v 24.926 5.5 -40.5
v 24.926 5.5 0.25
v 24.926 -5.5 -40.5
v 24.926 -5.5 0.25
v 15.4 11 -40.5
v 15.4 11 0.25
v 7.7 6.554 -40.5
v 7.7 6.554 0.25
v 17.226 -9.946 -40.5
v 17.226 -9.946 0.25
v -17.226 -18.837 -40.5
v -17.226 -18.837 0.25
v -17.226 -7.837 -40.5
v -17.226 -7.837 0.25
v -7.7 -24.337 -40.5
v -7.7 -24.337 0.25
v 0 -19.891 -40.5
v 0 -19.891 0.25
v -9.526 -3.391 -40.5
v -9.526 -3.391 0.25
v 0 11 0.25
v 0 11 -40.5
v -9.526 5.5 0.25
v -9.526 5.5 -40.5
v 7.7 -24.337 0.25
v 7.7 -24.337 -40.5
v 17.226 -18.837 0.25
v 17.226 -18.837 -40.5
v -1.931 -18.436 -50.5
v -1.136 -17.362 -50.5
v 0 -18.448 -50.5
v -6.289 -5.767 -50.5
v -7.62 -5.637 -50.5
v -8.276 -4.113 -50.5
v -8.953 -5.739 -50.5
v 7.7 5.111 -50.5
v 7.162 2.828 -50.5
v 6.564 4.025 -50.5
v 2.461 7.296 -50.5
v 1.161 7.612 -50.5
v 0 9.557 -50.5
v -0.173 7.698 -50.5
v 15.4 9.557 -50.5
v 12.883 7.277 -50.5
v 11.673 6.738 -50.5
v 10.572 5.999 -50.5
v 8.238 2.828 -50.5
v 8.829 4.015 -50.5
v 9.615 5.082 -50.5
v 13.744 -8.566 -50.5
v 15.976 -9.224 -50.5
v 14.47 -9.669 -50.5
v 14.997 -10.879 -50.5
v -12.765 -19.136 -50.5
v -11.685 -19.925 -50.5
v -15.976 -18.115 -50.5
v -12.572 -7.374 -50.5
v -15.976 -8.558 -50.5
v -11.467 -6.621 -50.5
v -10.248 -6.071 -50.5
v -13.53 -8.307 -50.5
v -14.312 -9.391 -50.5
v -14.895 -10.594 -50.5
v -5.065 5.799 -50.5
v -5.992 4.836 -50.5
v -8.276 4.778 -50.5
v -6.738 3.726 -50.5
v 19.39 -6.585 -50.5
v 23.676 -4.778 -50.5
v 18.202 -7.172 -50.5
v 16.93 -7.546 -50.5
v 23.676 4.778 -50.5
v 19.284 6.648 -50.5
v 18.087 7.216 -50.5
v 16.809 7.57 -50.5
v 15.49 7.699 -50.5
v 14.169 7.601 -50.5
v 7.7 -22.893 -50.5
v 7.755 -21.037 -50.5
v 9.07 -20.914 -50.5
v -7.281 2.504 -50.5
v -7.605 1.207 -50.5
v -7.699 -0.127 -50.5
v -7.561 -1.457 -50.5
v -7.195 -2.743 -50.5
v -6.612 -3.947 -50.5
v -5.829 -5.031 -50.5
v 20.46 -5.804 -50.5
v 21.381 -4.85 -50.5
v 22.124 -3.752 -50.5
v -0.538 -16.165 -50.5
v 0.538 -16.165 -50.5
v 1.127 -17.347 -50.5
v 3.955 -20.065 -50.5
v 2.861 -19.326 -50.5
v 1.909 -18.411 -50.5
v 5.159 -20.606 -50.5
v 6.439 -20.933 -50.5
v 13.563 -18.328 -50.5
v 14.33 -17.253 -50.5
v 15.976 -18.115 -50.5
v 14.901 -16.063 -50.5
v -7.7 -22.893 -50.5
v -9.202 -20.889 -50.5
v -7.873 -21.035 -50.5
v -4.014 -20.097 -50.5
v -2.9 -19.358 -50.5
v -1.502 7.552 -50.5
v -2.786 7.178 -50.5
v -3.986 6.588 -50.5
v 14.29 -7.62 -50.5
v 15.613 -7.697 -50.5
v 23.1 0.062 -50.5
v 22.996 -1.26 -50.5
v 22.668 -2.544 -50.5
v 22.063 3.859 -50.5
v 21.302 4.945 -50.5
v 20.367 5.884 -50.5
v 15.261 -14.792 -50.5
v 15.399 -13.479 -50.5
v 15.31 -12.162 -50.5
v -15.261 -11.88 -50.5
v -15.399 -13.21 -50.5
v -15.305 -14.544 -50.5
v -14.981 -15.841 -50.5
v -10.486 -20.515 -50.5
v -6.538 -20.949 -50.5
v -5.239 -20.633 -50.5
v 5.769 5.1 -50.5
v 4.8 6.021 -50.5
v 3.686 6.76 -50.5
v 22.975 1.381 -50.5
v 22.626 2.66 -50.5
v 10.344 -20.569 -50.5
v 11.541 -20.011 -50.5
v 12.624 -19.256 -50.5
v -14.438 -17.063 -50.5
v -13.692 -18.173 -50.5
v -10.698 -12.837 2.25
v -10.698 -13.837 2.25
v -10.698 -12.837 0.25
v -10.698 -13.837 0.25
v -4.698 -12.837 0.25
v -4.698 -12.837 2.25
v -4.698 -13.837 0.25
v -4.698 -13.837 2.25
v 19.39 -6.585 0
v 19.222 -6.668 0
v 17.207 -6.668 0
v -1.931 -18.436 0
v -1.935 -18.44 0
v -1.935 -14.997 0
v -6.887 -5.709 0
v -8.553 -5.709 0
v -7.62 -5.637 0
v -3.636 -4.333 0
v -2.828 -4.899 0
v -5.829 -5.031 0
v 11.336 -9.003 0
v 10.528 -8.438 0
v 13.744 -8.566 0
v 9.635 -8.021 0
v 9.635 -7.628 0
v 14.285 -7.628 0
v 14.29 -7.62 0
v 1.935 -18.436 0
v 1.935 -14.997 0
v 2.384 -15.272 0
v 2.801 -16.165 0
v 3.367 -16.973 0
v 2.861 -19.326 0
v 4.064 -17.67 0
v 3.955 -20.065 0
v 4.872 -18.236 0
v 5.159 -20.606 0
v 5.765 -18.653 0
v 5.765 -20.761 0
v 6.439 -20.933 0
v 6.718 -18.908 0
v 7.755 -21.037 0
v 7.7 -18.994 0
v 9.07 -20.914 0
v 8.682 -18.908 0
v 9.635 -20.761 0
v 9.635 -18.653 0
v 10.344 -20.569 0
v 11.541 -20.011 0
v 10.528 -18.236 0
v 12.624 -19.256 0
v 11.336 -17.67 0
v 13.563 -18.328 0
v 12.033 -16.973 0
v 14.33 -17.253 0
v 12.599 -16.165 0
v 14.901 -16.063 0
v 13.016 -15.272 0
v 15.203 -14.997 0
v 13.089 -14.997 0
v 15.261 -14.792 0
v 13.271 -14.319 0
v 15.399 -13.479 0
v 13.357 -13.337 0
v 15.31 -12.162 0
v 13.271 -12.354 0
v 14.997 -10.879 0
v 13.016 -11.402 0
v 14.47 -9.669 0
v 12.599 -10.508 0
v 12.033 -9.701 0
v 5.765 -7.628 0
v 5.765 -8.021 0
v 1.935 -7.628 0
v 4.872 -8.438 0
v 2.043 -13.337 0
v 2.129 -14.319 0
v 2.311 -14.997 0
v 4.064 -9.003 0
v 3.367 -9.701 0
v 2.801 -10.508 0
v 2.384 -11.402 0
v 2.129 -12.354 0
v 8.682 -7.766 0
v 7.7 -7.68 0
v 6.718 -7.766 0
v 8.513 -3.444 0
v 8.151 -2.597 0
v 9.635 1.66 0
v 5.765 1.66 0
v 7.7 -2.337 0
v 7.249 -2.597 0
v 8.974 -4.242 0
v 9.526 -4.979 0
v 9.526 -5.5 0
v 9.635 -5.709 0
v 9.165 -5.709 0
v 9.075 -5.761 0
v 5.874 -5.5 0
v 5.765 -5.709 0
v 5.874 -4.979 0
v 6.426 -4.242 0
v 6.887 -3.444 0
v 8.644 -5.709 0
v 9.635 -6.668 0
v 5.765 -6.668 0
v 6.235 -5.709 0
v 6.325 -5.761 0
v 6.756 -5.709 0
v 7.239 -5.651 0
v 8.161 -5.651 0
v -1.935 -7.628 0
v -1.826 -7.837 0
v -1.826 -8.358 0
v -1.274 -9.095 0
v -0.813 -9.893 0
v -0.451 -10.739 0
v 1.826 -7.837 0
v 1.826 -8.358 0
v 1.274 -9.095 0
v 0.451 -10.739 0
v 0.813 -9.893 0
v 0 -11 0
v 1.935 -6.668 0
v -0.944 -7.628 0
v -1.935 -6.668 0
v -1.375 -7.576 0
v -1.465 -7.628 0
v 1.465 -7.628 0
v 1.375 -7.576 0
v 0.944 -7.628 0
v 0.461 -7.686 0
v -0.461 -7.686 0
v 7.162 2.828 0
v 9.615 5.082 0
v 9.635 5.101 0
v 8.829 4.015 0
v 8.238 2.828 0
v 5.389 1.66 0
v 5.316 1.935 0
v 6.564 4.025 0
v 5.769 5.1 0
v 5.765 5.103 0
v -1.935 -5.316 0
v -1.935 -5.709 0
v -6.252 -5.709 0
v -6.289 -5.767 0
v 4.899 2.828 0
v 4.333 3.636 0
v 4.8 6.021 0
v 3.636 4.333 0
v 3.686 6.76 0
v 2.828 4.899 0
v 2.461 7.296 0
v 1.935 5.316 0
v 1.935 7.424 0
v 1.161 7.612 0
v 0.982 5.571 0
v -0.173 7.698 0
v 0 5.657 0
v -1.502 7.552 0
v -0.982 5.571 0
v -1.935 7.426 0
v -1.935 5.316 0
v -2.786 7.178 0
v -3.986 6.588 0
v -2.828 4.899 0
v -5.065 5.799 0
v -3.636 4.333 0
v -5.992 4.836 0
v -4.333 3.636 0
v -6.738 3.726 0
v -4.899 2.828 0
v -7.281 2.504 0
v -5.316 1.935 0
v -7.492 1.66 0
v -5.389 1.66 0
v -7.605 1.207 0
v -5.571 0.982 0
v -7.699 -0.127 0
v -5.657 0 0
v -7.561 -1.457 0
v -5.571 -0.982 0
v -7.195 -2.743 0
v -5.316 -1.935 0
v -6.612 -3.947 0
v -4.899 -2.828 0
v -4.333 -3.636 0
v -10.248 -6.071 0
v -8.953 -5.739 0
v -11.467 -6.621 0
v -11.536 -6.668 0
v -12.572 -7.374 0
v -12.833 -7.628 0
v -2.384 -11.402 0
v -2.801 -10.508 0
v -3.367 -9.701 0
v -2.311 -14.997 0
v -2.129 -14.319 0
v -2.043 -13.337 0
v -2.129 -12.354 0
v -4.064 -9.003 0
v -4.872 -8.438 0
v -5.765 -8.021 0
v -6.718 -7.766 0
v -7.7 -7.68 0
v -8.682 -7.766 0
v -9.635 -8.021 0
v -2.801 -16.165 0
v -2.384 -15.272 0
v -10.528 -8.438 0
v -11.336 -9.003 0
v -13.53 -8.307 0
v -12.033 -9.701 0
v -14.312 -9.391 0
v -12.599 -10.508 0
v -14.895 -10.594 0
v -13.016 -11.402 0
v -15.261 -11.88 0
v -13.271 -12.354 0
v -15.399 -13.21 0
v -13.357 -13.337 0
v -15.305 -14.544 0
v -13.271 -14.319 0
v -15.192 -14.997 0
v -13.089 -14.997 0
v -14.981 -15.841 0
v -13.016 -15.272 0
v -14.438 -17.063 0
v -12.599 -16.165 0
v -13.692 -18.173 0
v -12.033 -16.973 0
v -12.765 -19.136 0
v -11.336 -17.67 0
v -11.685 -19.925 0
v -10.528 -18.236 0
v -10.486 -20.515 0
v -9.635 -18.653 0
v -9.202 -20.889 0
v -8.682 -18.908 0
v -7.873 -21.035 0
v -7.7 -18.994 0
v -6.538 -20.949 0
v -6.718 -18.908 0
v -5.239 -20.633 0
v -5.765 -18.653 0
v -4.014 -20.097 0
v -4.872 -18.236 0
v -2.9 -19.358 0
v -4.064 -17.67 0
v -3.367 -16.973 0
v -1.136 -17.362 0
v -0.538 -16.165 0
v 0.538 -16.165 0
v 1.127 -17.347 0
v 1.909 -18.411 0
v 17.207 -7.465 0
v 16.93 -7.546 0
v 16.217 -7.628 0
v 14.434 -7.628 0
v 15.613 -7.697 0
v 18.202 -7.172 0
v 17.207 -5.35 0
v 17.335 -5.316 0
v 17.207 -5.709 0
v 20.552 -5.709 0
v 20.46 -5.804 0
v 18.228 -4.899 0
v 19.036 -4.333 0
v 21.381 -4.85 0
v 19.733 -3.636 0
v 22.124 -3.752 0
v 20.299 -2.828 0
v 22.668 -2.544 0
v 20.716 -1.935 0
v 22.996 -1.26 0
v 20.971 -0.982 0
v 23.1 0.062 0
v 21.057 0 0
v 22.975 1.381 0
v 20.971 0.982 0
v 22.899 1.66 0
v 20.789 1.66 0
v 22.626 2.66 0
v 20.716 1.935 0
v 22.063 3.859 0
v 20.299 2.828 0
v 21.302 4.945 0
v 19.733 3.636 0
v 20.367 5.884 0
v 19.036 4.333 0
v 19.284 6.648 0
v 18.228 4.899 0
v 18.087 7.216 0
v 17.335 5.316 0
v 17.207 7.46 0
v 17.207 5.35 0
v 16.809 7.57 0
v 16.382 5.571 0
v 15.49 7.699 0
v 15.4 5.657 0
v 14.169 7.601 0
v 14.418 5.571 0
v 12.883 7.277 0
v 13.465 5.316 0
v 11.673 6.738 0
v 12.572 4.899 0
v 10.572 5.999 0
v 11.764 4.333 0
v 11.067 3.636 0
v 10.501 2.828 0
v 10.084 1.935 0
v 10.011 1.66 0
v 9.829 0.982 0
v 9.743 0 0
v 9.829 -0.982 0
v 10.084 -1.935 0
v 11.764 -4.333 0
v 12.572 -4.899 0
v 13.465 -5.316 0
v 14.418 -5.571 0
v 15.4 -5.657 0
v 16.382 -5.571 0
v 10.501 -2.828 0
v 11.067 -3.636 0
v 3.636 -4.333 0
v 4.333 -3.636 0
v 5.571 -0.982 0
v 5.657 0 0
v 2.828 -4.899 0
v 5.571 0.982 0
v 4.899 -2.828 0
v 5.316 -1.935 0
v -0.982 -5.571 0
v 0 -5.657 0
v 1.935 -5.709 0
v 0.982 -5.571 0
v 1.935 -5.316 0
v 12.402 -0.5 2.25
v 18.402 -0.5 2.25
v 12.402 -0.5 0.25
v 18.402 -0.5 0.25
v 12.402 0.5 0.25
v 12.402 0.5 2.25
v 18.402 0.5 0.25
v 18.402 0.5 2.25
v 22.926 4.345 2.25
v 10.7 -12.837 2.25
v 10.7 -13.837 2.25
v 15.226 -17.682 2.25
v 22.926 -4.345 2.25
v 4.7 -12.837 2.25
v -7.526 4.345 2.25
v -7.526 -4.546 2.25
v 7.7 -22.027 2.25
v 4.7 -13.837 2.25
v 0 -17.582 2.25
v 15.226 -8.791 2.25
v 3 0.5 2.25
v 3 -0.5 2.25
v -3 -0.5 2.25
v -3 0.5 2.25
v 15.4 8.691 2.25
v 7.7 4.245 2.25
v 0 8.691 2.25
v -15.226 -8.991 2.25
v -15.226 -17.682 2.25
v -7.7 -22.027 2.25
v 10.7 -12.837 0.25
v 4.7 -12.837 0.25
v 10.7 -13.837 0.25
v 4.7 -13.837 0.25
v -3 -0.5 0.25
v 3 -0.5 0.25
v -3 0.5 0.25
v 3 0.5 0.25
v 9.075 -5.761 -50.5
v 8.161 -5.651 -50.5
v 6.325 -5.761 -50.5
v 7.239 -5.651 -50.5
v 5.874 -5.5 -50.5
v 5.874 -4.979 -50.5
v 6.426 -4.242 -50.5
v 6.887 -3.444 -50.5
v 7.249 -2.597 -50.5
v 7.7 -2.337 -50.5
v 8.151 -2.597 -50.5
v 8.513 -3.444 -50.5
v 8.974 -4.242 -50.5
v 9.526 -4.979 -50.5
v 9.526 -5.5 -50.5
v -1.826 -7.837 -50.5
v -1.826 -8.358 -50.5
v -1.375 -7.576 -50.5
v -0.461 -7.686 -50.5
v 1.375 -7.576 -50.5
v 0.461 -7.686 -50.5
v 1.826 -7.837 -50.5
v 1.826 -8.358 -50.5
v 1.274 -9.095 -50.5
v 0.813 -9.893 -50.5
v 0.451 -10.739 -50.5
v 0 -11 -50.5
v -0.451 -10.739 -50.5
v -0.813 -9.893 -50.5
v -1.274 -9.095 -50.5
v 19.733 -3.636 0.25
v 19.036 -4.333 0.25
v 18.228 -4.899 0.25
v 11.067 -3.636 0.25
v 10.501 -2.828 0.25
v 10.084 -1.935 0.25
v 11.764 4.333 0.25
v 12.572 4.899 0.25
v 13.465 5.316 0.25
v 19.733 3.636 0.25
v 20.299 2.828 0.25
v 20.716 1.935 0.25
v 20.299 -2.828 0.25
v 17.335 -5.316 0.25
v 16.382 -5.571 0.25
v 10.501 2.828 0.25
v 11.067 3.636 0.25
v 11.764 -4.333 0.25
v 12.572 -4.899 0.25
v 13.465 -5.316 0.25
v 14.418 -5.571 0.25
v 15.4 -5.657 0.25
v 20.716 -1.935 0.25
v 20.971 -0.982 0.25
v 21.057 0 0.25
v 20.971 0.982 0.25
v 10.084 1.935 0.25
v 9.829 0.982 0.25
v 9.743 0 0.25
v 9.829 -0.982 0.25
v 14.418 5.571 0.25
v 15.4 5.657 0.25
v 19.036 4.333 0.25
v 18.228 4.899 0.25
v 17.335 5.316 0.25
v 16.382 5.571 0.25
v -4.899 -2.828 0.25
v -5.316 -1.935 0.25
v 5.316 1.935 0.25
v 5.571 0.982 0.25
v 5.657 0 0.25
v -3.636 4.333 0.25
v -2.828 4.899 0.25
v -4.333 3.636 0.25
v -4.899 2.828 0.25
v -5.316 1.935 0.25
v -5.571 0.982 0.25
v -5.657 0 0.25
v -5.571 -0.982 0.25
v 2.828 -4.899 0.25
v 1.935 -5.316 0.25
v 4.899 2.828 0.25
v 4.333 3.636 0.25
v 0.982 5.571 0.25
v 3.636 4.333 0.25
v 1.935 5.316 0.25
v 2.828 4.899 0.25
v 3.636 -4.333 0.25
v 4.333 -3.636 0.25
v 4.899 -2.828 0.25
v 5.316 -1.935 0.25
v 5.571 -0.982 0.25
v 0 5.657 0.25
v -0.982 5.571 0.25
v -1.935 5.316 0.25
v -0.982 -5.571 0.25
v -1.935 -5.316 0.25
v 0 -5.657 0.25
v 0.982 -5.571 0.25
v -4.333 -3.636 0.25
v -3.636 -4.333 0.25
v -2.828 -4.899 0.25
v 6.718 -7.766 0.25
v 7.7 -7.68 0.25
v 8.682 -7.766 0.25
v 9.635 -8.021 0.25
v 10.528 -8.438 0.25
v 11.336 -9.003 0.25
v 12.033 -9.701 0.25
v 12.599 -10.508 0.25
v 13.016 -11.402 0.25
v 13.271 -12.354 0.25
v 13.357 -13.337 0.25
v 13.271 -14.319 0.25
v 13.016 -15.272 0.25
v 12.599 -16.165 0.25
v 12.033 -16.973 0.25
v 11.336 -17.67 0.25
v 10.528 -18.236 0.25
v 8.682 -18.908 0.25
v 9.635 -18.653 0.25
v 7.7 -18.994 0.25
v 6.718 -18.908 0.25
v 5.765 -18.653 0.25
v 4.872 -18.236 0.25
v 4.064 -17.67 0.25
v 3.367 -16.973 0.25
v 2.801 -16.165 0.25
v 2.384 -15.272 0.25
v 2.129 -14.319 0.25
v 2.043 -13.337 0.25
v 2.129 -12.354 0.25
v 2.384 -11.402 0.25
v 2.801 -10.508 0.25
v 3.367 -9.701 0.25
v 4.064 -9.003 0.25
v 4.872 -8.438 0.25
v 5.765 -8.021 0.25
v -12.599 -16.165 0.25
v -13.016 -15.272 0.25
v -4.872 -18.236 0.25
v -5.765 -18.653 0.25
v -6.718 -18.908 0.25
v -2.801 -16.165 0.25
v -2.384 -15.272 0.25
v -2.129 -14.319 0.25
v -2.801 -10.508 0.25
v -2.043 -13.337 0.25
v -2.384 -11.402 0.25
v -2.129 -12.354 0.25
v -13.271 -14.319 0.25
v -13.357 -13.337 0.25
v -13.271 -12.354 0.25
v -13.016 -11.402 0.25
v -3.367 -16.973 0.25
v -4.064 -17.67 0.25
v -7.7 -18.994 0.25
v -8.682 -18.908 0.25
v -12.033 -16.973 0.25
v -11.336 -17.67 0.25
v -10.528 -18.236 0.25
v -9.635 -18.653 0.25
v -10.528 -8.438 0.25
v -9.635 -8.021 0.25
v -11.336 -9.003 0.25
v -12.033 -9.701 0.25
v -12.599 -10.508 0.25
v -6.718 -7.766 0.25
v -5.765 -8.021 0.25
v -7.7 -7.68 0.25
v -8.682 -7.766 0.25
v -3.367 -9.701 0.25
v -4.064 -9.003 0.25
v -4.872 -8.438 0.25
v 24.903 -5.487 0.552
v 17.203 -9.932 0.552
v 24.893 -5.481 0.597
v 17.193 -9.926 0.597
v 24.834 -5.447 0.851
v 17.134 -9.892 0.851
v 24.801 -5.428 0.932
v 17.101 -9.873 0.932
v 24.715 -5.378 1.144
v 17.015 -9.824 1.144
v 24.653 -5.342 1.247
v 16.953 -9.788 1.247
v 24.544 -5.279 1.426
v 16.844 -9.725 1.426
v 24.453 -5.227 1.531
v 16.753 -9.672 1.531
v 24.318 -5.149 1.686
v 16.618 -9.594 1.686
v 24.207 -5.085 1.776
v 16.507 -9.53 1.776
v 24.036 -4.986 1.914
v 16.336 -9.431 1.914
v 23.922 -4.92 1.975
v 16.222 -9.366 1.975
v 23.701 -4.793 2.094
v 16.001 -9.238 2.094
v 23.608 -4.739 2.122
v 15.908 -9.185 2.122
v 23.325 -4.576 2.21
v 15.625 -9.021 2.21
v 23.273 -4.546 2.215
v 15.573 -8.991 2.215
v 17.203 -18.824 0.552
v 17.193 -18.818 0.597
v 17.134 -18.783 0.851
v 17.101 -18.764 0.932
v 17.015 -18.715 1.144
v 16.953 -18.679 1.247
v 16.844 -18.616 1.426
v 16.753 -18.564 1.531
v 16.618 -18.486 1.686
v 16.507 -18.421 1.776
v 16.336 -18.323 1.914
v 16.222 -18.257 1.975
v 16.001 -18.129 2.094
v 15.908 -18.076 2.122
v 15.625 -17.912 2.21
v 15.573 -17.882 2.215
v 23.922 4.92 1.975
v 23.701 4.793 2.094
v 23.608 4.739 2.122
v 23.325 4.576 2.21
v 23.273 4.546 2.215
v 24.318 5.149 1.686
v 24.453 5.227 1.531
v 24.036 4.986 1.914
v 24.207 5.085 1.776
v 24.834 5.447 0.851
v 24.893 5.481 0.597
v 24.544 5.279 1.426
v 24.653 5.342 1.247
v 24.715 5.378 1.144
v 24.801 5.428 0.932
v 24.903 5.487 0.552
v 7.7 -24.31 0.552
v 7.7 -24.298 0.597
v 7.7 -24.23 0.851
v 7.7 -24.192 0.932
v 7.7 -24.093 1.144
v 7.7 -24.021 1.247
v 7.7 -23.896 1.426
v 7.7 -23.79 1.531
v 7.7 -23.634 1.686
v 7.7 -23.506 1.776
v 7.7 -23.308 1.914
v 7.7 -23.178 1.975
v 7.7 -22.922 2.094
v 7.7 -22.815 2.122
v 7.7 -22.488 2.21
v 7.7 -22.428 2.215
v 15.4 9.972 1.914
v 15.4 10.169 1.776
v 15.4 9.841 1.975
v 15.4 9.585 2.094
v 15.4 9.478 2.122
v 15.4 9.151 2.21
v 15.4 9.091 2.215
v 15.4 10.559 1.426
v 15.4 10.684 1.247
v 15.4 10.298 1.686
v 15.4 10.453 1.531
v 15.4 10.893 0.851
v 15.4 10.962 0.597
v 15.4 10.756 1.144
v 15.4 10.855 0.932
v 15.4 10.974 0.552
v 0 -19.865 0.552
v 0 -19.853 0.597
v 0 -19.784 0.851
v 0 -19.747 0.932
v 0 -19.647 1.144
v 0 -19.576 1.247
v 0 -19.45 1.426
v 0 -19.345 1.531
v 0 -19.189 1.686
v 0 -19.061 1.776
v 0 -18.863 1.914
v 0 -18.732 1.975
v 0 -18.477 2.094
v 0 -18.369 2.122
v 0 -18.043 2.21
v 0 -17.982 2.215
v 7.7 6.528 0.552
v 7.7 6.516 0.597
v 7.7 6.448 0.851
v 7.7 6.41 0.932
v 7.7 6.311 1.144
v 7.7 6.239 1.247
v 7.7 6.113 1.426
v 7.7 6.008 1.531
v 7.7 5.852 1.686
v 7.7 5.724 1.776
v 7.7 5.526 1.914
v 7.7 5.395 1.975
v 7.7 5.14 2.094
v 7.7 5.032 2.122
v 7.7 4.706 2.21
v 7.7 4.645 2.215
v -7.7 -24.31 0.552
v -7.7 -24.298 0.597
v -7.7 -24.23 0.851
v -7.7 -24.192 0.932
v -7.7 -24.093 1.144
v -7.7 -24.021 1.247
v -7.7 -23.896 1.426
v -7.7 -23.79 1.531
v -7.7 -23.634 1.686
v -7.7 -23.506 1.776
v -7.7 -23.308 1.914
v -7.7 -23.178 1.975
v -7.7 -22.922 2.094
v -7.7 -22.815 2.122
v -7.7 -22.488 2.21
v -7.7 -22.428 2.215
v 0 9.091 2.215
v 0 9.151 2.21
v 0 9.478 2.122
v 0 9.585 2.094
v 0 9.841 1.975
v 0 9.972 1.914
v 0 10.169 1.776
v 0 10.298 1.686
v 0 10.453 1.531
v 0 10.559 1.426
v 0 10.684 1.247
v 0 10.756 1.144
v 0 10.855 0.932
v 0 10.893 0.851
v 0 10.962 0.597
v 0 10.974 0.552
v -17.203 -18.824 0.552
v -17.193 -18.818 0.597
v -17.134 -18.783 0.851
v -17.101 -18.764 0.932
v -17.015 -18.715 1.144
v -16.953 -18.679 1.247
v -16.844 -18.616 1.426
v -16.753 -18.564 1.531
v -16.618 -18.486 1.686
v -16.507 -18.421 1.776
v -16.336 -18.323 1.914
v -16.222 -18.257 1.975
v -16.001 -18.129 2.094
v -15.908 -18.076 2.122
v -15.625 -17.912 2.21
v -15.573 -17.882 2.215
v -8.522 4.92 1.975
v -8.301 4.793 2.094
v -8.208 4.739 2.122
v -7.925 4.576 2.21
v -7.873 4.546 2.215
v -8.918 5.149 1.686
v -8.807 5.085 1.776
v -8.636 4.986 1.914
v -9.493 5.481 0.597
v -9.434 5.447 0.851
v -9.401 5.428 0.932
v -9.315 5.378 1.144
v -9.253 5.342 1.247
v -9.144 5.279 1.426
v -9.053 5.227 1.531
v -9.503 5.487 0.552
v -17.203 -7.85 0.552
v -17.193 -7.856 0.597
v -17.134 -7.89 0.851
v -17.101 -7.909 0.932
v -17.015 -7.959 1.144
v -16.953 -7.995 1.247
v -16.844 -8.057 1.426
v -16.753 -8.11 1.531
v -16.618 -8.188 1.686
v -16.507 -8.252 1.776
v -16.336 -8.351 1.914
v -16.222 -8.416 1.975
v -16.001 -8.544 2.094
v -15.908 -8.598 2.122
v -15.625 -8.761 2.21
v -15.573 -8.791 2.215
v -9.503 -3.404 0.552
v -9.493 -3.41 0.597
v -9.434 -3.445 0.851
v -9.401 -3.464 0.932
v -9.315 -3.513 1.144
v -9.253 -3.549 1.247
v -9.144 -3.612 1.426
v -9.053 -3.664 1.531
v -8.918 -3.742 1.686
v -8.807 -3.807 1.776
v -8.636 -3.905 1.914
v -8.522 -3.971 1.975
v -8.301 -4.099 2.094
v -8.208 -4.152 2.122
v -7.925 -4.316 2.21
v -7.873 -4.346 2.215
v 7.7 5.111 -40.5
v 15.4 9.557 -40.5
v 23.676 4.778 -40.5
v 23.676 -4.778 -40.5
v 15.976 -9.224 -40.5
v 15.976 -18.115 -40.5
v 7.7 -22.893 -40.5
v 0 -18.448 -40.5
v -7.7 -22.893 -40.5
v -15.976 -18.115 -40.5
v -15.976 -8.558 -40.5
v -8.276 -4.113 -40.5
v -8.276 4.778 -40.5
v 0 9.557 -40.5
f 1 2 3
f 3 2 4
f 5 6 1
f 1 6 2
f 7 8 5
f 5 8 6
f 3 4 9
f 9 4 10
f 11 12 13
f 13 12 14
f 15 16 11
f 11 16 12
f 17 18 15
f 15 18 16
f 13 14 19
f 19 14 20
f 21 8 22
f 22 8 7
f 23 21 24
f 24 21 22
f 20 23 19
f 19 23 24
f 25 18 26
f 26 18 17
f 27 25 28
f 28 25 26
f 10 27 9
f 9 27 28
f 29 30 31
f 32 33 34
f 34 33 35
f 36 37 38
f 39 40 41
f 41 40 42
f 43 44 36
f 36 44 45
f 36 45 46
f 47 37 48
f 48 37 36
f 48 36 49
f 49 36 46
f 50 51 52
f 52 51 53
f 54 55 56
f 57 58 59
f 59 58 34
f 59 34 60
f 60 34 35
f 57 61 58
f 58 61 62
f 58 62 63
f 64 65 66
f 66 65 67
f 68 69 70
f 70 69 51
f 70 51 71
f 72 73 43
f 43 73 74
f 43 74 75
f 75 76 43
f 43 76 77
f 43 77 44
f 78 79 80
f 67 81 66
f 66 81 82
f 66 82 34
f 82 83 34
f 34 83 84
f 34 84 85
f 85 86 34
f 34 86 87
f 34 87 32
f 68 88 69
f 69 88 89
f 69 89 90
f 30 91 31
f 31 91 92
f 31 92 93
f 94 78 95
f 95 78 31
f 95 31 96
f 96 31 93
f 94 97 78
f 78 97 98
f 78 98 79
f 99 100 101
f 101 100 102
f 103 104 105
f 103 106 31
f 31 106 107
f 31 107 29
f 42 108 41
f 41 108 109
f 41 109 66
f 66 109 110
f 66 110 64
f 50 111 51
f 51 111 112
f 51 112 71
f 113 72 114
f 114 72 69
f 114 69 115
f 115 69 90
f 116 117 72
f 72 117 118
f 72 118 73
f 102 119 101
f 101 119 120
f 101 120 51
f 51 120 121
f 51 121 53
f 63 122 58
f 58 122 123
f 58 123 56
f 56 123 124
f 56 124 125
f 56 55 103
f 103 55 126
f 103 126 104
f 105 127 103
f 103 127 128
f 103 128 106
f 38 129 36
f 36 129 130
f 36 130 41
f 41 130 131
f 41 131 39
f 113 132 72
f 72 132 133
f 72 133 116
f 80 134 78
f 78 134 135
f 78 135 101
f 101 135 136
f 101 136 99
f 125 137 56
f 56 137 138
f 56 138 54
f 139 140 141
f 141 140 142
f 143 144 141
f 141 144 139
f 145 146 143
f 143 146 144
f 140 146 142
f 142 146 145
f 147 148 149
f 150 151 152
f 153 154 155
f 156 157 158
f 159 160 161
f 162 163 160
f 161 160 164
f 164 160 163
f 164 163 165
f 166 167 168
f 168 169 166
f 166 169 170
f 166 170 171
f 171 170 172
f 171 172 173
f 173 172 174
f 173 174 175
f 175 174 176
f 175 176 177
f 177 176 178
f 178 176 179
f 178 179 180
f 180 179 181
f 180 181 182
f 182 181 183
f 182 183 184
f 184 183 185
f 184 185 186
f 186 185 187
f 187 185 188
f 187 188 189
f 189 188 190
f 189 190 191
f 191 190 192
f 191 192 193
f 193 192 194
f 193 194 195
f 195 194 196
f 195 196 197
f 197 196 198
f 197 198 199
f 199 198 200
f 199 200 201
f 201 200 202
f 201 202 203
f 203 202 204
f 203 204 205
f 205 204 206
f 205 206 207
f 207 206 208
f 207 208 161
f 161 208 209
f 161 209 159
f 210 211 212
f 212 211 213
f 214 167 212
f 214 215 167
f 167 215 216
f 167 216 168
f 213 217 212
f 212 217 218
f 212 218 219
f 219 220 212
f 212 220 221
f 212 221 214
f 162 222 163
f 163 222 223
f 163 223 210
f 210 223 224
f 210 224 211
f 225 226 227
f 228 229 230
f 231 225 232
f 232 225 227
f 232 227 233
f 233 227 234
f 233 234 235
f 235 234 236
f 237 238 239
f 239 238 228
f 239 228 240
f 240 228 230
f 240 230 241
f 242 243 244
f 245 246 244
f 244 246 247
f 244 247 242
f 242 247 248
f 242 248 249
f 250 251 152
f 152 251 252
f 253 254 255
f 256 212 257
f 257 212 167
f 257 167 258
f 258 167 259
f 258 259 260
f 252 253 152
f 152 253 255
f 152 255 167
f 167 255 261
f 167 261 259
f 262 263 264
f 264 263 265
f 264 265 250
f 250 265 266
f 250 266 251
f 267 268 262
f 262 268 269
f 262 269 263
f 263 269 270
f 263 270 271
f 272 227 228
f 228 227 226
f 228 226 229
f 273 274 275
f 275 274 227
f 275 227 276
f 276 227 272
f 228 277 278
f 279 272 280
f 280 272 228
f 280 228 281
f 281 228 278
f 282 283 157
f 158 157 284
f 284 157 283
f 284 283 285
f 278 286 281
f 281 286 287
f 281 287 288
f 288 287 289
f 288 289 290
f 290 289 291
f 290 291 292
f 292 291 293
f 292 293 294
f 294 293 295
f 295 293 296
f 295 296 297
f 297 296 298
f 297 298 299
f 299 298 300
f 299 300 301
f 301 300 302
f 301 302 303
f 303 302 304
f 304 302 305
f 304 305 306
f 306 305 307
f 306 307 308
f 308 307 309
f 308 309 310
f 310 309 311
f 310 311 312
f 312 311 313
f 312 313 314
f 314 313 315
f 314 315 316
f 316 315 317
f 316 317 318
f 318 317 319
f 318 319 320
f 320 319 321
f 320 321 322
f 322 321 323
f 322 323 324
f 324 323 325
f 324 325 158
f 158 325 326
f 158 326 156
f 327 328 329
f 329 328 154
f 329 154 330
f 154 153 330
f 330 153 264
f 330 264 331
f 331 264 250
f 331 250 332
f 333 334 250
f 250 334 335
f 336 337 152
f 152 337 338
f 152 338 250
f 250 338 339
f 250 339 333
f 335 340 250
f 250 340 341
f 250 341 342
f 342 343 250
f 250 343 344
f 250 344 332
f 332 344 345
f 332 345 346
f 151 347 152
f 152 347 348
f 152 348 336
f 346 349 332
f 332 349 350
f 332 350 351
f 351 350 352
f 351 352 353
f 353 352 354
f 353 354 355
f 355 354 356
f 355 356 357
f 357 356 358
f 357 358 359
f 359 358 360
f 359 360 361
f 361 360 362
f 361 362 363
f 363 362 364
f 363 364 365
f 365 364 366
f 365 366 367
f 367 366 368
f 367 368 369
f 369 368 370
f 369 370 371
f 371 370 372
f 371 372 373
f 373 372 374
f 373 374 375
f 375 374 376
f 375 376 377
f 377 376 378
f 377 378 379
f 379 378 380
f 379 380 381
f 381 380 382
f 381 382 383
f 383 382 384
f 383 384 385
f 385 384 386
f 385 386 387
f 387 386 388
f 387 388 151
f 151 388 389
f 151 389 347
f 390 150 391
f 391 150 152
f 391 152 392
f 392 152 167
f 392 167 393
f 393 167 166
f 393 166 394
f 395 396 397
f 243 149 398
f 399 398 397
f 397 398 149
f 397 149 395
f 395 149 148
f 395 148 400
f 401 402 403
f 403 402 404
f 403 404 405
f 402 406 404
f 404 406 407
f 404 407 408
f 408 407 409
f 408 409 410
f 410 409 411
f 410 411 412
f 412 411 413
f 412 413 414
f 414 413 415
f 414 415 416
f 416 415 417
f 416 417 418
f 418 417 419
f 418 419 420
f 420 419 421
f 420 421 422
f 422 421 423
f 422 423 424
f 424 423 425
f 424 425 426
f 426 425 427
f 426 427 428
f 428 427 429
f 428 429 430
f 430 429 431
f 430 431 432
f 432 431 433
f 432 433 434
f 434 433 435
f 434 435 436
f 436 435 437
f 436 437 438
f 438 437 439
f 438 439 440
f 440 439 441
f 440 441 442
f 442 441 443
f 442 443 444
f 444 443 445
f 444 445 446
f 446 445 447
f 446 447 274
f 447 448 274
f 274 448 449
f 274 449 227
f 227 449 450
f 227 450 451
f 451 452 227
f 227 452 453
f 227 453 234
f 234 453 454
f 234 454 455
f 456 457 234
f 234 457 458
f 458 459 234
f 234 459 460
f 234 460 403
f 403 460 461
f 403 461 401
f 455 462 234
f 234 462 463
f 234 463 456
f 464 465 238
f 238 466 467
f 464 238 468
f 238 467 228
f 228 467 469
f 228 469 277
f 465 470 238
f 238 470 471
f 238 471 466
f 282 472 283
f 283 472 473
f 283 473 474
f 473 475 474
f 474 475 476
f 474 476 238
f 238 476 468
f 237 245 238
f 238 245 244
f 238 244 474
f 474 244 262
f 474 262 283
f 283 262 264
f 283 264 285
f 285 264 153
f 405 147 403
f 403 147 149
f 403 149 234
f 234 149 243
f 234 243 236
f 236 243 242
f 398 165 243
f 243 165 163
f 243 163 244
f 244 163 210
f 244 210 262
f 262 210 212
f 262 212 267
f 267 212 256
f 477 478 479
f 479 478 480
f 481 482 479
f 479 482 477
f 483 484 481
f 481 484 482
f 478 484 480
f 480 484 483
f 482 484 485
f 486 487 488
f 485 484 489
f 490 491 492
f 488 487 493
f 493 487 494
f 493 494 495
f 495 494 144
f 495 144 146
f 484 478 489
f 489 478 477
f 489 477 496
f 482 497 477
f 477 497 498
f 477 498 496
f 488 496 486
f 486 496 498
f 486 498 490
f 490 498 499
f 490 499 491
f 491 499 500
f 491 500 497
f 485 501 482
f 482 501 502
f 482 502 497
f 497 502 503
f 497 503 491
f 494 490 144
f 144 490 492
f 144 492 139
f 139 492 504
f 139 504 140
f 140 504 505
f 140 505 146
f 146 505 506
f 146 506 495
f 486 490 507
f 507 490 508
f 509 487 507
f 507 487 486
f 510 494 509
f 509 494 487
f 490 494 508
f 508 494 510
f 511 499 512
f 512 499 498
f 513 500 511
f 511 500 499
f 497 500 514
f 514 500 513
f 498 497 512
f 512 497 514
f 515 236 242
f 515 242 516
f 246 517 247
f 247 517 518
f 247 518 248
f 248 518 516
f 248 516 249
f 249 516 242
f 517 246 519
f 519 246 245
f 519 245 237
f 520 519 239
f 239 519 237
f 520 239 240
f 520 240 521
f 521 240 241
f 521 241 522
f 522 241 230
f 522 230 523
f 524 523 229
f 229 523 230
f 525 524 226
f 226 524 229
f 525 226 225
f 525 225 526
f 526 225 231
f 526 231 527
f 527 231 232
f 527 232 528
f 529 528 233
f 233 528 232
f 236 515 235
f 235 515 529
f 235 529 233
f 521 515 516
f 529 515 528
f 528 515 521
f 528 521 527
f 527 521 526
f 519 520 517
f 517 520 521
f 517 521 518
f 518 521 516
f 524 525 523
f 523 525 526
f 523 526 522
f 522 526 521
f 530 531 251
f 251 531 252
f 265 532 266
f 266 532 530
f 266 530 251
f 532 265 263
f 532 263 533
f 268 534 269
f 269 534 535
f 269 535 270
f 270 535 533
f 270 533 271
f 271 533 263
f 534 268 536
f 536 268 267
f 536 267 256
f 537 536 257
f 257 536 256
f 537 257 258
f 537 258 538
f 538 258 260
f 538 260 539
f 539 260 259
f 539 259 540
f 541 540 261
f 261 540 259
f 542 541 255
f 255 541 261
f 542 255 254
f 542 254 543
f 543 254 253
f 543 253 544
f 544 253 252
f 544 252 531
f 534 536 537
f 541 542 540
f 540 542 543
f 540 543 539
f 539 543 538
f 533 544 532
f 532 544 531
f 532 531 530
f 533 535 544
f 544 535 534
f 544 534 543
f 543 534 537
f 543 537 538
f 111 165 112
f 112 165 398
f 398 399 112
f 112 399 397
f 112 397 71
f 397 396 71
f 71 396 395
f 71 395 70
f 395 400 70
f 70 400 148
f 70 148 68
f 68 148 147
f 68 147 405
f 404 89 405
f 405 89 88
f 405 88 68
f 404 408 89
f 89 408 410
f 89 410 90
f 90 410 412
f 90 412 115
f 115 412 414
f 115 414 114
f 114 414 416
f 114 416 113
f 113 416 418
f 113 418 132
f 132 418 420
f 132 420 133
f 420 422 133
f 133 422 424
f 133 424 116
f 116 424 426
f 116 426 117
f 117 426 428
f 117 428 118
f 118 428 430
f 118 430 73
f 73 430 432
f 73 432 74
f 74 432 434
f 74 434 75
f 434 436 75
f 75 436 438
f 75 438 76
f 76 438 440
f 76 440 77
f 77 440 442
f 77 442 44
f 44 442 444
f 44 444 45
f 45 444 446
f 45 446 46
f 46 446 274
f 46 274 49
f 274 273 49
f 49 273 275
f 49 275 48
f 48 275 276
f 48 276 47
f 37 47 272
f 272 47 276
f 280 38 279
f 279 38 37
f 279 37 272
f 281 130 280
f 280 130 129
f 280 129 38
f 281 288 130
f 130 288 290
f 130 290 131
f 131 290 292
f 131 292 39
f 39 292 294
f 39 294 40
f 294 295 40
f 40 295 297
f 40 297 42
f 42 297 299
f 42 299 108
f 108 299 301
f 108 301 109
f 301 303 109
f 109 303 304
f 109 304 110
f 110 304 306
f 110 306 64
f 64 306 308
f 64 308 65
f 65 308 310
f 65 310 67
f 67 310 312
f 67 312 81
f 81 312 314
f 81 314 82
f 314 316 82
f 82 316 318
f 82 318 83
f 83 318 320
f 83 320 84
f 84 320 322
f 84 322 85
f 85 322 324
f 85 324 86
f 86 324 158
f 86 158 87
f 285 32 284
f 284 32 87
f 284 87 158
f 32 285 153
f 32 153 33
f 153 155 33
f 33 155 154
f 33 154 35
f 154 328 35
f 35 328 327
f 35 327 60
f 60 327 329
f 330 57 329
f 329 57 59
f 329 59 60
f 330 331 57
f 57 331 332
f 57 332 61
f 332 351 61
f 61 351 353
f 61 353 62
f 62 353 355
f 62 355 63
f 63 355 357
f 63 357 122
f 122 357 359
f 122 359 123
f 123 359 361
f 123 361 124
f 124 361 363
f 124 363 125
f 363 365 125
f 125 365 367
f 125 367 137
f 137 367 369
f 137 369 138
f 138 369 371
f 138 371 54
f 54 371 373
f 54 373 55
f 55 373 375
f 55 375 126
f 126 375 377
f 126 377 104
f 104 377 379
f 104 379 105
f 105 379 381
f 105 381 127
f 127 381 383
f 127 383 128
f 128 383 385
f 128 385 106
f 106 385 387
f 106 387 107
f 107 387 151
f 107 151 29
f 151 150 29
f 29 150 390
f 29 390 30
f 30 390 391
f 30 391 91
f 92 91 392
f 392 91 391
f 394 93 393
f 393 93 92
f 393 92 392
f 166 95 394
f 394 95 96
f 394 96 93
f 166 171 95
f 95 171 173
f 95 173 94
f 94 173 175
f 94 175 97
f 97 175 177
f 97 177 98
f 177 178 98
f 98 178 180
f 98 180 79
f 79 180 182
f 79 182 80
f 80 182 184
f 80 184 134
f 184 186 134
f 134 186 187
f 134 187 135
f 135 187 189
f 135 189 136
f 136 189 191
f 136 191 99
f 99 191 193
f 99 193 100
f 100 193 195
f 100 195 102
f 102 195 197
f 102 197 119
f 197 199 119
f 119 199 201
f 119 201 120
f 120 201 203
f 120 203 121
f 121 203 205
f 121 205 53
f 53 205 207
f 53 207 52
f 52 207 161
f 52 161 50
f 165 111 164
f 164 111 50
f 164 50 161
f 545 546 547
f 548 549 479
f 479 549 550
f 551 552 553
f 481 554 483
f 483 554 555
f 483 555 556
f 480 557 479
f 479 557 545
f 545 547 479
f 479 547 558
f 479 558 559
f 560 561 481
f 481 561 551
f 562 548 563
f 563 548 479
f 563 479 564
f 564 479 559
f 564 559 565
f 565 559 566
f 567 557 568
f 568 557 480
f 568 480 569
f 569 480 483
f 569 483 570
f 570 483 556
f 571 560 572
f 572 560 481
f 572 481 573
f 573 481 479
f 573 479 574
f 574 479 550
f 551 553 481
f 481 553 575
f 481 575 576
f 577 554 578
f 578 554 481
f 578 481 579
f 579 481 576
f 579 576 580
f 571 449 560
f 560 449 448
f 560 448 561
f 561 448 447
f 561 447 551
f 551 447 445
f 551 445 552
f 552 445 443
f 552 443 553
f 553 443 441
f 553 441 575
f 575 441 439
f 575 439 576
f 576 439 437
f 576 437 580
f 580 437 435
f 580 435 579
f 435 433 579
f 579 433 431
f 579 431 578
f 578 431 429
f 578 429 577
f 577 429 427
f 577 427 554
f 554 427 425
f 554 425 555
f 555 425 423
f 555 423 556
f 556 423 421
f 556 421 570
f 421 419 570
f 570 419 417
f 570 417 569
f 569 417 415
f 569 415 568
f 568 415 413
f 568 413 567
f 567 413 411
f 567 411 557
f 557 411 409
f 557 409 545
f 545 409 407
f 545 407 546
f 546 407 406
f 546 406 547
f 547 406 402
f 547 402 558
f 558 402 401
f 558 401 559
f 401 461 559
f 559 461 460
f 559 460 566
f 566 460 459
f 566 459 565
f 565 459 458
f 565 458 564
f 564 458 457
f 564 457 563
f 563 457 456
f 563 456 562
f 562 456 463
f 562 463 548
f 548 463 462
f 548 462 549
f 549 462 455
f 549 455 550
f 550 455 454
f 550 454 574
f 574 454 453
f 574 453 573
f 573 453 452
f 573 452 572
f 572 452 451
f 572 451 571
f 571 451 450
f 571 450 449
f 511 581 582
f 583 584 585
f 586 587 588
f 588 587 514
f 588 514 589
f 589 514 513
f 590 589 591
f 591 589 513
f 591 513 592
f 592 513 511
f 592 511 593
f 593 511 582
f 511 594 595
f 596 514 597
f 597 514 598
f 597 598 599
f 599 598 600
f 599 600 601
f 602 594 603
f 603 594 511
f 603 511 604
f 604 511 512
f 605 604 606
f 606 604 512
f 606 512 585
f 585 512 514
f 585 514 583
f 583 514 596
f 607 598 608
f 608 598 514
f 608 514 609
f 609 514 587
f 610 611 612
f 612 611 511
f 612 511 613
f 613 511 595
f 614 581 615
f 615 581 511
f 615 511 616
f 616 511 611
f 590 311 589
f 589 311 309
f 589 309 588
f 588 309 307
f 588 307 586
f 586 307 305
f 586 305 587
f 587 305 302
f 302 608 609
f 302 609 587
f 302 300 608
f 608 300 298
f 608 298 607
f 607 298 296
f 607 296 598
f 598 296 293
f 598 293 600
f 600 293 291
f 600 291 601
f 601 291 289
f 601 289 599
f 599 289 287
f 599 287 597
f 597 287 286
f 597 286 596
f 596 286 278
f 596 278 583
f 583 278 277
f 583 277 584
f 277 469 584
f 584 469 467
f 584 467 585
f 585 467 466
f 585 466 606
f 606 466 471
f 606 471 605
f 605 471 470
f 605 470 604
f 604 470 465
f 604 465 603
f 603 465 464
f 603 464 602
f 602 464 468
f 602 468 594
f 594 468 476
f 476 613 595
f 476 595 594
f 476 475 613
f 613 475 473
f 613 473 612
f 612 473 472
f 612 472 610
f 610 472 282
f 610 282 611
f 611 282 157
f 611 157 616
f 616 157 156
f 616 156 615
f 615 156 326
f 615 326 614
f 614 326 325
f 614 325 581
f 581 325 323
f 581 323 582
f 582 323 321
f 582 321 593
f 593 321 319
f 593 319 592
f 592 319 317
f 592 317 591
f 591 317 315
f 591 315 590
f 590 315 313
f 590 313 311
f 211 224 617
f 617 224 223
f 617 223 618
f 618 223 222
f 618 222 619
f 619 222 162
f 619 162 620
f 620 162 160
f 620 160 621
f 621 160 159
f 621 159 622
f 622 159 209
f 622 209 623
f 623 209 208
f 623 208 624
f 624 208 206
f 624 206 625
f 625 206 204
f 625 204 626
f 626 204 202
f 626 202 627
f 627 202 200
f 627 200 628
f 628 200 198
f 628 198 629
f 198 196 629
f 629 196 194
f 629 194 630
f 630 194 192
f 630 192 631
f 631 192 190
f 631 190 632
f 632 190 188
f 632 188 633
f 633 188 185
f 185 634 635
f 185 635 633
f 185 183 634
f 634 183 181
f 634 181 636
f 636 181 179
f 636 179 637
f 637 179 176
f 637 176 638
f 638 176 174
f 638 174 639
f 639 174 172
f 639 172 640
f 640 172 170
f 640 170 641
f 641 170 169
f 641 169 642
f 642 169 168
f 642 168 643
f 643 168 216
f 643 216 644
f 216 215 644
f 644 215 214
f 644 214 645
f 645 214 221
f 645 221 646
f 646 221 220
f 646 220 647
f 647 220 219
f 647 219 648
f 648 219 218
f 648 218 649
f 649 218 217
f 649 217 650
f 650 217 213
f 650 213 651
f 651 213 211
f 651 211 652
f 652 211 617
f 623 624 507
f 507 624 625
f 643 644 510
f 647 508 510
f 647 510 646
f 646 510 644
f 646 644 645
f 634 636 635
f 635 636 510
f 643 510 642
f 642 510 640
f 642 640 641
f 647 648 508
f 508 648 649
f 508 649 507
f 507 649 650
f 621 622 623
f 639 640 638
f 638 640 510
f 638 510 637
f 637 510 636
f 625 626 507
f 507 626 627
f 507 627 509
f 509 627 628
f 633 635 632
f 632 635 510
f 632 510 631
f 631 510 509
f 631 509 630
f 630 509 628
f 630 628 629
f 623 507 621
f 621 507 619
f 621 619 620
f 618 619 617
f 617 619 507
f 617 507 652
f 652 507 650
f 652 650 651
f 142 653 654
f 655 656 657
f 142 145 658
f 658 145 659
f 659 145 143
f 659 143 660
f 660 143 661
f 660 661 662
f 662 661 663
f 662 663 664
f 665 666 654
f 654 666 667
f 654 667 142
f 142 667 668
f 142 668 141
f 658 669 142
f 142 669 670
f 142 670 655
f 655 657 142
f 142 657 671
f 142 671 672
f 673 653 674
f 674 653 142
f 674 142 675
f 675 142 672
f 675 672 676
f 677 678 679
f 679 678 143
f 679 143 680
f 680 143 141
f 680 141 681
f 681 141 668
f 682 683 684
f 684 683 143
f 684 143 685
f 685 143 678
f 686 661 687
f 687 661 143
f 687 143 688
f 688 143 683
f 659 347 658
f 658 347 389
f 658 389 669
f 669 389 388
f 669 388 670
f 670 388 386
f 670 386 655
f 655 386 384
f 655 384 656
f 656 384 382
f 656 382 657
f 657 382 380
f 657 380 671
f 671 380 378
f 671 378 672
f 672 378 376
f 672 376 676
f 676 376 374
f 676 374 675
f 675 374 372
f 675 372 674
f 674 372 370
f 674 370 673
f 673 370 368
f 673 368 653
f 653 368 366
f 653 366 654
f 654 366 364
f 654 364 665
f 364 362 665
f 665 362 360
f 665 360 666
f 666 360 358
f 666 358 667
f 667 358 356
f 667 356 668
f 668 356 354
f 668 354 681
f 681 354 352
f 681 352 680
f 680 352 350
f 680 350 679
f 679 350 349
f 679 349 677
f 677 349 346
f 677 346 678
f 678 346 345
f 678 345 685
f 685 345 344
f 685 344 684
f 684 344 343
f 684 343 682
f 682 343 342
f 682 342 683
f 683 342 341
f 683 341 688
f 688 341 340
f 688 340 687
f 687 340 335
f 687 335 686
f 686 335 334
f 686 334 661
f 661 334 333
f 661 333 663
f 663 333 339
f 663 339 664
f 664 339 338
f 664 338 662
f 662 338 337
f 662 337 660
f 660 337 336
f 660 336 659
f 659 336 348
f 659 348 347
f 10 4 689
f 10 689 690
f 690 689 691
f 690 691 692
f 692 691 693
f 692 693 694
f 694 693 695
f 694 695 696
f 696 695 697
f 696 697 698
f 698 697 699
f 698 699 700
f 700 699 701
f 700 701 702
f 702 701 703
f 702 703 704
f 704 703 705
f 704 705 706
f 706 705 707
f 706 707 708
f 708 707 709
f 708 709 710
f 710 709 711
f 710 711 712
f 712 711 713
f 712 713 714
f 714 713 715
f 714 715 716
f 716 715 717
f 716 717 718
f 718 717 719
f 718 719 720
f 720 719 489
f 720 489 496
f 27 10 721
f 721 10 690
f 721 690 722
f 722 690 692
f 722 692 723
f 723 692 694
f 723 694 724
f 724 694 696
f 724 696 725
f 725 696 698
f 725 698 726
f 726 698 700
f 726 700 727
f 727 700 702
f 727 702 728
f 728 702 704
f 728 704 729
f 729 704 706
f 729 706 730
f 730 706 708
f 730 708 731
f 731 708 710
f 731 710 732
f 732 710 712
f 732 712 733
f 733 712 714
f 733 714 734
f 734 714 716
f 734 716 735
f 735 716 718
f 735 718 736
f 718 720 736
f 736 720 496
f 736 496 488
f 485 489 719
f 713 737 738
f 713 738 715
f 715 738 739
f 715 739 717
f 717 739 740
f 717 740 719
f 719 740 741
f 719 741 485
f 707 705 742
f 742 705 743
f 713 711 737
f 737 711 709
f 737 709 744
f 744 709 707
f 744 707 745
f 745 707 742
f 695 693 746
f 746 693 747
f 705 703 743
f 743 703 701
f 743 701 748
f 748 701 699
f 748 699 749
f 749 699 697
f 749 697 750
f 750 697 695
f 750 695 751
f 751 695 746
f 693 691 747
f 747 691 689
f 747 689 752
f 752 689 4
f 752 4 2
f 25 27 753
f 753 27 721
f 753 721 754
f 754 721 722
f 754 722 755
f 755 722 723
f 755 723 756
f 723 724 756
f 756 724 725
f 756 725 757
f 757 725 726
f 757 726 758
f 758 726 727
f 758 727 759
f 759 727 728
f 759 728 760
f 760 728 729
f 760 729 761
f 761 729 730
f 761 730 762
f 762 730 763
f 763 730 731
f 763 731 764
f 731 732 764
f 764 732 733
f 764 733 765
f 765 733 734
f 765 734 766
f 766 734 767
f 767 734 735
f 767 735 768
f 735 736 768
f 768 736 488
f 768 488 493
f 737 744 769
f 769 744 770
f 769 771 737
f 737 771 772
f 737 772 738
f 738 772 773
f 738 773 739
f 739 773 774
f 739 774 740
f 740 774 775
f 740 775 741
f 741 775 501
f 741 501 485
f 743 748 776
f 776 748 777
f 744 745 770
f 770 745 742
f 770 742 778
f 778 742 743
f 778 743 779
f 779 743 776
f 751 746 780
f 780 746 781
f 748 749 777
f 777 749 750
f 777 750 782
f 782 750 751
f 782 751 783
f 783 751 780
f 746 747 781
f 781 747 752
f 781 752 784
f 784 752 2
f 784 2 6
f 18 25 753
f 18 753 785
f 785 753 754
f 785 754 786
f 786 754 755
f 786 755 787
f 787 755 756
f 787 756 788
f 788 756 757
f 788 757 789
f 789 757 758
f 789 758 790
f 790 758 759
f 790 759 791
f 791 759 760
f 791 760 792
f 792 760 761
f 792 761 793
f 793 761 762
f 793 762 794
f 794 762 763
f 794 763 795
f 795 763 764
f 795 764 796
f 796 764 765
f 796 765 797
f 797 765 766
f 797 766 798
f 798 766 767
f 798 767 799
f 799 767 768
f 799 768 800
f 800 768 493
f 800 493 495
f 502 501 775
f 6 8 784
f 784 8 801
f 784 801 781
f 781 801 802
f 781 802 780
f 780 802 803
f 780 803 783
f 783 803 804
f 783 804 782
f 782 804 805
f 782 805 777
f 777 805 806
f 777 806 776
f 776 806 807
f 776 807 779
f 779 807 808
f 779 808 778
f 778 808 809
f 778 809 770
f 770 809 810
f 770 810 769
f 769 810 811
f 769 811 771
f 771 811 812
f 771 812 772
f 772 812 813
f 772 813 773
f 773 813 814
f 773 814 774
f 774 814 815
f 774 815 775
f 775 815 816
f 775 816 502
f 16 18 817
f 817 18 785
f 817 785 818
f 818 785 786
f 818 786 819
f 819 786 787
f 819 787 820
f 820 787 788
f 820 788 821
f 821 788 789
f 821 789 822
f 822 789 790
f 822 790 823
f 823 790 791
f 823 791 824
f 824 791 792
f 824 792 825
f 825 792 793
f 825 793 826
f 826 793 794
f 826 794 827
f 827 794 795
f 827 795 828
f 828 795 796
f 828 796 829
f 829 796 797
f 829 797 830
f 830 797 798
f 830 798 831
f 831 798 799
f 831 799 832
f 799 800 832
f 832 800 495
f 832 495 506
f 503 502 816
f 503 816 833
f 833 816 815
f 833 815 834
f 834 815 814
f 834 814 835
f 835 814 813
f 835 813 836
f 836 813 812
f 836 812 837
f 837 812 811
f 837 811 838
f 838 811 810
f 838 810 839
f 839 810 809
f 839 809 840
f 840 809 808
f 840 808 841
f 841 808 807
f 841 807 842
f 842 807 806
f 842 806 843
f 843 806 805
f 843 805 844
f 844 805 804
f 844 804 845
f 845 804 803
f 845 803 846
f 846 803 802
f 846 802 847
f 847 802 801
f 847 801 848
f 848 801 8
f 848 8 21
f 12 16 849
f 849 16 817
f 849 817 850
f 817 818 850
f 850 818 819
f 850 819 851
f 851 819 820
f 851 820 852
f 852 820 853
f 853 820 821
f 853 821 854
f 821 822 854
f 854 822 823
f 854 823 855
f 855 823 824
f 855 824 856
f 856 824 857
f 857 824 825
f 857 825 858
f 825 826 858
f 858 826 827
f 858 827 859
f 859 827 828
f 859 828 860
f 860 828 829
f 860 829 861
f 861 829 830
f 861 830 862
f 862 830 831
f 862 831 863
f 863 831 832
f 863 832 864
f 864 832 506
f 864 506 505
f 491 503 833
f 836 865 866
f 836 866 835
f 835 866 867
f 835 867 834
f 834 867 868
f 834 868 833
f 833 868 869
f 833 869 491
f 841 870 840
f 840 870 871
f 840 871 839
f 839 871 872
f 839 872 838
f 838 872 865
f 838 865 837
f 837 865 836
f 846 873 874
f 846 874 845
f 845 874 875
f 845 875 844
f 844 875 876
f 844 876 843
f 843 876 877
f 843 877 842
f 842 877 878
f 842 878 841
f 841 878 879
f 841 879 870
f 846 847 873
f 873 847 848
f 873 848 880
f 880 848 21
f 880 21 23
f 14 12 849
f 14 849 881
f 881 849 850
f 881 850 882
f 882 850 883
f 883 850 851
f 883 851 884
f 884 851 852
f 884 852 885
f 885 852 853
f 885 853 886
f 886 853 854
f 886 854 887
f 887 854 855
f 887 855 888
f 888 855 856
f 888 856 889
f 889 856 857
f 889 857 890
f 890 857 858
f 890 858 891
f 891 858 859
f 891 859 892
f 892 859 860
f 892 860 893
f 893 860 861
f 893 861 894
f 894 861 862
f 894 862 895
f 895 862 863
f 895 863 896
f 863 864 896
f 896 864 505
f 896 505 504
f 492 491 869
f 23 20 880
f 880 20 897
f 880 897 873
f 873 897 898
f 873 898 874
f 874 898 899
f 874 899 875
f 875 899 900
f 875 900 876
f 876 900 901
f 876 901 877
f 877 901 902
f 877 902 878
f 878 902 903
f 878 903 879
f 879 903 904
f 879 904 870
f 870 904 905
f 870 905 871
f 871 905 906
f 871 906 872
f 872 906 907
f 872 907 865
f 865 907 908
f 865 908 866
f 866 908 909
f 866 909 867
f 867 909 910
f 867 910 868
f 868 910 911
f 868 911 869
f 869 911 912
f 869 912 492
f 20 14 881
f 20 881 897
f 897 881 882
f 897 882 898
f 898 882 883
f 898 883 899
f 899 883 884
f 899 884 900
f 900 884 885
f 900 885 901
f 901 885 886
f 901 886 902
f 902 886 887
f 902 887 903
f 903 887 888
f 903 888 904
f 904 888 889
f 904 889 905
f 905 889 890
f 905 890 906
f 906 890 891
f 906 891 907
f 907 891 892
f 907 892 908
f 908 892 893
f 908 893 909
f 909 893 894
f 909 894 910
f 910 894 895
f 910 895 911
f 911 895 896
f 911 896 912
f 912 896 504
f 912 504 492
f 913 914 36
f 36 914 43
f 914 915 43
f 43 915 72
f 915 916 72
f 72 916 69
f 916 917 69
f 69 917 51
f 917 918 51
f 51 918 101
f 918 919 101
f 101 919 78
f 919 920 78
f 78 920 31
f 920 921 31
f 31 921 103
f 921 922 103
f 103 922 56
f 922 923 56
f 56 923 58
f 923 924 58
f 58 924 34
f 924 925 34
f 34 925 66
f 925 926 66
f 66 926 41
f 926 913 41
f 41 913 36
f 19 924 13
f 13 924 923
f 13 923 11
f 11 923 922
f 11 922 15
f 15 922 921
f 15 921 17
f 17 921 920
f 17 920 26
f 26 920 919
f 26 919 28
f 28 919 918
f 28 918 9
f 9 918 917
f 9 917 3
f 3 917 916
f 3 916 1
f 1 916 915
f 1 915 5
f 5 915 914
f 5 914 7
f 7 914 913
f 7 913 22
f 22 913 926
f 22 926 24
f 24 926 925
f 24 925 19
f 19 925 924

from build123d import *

# Parameters (mm, degrees)
SKETCH2_W           = 6
SKETCH2_H           = 1
BOSS_EXTRUDE1_DEPTH = 2.25
BOSS_EXTRUDE2_DEPTH = 50.5
SKETCH2_5_R         = 5.656929669
CUT_EXTRUDE1_DEPTH  = 0.25
FILLET1_R           = 2
CUT_EXTRUDE3_DEPTH  = 10


with BuildPart() as part:
    # Sketch2 → Boss-Extrude1 (new body)
    with BuildSketch(Plane.XY):
        Polygon((7.7, 6.554402927), (0, 11), (-9.526279442, 5.5), (-9.526279442, -3.391194146), (-17.226279442, -7.836791218), (-17.226279442, -18.836791218), (-7.7, -24.336791218), (0, -19.891194146), (7.7, -24.336791218), (17.226279442, -18.836791218), (17.226279442, -9.945597073), (24.926279442, -5.5), (24.926279442, 5.5), (15.4, 11), align=None)
        Rectangle(SKETCH2_W, SKETCH2_H, mode=Mode.SUBTRACT)
        with Locations((15.401984556, 0.000248069)):
            Rectangle(SKETCH2_W, SKETCH2_H, mode=Mode.SUBTRACT)
        with Locations((-7.698015444, -13.337039288)):
            Rectangle(SKETCH2_W, SKETCH2_H, mode=Mode.SUBTRACT)
        with Locations((7.7, -13.336791218)):
            Rectangle(SKETCH2_W, SKETCH2_H, mode=Mode.SUBTRACT)
    extrude(amount=BOSS_EXTRUDE1_DEPTH)

    # Sketch2<4> → Boss-Extrude2 (add)
    # profile 1 of 3: a face of its own
    with BuildSketch(Plane.XY):
        Polygon((7.7, 6.554402927), (0, 11), (-9.526279442, 5.5), (-9.526279442, -3.391194146), (-17.226279442, -7.836791218), (-17.226279442, -18.836791218), (-7.7, -24.336791218), (0, -19.891194146), (7.7, -24.336791218), (17.226279442, -18.836791218), (17.226279442, -9.945597073), (24.926279442, -5.5), (24.926279442, 5.5), (15.4, 11), align=None)
        with BuildLine():
            Line((7.161688815, 2.828464835), (8.238311185, 2.828464835))
            ThreePointArc((8.238311185, 2.828464835), (22.062914613, 3.859477797), (14.290341933, -7.619623283))
            Line((14.290341933, -7.619623283), (13.743882842, -8.565891912))
            ThreePointArc((13.743882842, -8.565891912), (11.540567196, -20.010623971), (0.538311185, -16.165256053))
            Line((0.538311185, -16.165256053), (-0.538311185, -16.165256053))
            ThreePointArc((-0.538311185, -16.165256053), (-14.438217046, -17.063241411), (-6.288758272, -5.767220769))
            Line((-6.288758272, -5.767220769), (-5.82928192, -5.030852045))
            ThreePointArc((-5.82928192, -5.030852045), (-3.985729856, 6.588167994), (7.161688815, 2.828464835))
        make_face(mode=Mode.SUBTRACT)
    # profile 2 of 3: a face of its own
    with BuildSketch(Plane.XY):
        with BuildLine():
            Line((7.7, -2.336791218), (7.248710822, -2.597343147))
            ThreePointArc((7.248710822, -2.597343147), (6.668395609, -3.85), (5.873720558, -4.978896143))
            Line((5.873720558, -4.978896143), (5.873720558, -5.5))
            Line((5.873720558, -5.5), (6.325009737, -5.760551929))
            ThreePointArc((6.325009737, -5.760551929), (7.7, -5.636791218), (9.074990263, -5.760551929))
            Line((9.074990263, -5.760551929), (9.526279442, -5.5))
            Line((9.526279442, -5.5), (9.526279442, -4.978896143))
            ThreePointArc((9.526279442, -4.978896143), (8.731604391, -3.85), (8.151289178, -2.597343147))
            Line((8.151289178, -2.597343147), (7.7, -2.336791218))
        make_face()
    # profile 3 of 3: a face of its own
    with BuildSketch(Plane.XY):
        with BuildLine():
            ThreePointArc((1.374990263, -7.57623929), (0, -7.7), (-1.374990263, -7.57623929))
            Line((-1.374990263, -7.57623929), (-1.826279442, -7.836791218))
            Line((-1.826279442, -7.836791218), (-1.826279442, -8.357895075))
            ThreePointArc((-1.826279442, -8.357895075), (-1.031604391, -9.486791218), (-0.451289178, -10.739448071))
            Line((-0.451289178, -10.739448071), (0, -11))
            Line((0, -11), (0.451289178, -10.739448071))
            ThreePointArc((0.451289178, -10.739448071), (1.031604391, -9.486791218), (1.826279442, -8.357895075))
            Line((1.826279442, -8.357895075), (1.826279442, -7.836791218))
            Line((1.826279442, -7.836791218), (1.374990263, -7.57623929))
        make_face()
    extrude(amount=-BOSS_EXTRUDE2_DEPTH)

    # Sketch2<5> → Cut-Extrude1 (cut)
    with BuildSketch(Plane.XY):
        with Locations((15.4, 0)):
            Circle(SKETCH2_5_R)
        Circle(SKETCH2_5_R)
        with Locations((7.7, -13.336791218)):
            Circle(SKETCH2_5_R)
        with Locations((-7.7, -13.336791218)):
            Circle(SKETCH2_5_R)
    extrude(amount=CUT_EXTRUDE1_DEPTH, mode=Mode.SUBTRACT)

    # Fillet1
    fillet1_edges = [part.edges().sort_by_distance(p)[0] for p in [
        (3.85, 8.777201464, 2.25),
        (20.163139721, 8.25, 2.25),
        (11.55, 8.777201464, 2.25),
        (24.926279442, 0, 2.25),
        (21.076279442, -7.722798536, 2.25),
        (17.226279442, -14.391194146, 2.25),
        (12.463139721, -21.586791218, 2.25),
        (3.85, -22.113992682, 2.25),
        (-3.85, -22.113992682, 2.25),
        (-12.463139721, -21.586791218, 2.25),
        (-17.226279442, -13.336791218, 2.25),
        (-13.376279442, -5.613992682, 2.25),
        (-9.526279442, 1.054402927, 2.25),
        (-4.763139721, 8.25, 2.25),
    ]]
    fillet(fillet1_edges, radius=FILLET1_R)

    # Sketch7 → Cut-Extrude3 (cut)
    with BuildSketch(Plane(origin=(0, 0, -50.5), x_dir=(-1, 0, 0), z_dir=(0, 0, -1))):
        Polygon((-15.4, 11), (-24.926279442, 5.5), (-24.926279442, -5.5), (-17.226279442, -9.945597073), (-17.226279442, -18.836791218), (-7.7, -24.336791218), (0, -19.891194146), (7.7, -24.336791218), (17.226279442, -18.836791218), (17.226279442, -7.836791218), (9.526279442, -3.391194146), (9.526279442, 5.5), (0, 11), (-7.7, 6.554402927), align=None)
        Polygon((-15.4, 9.556624327), (-7.7, 5.111027254), (0, 9.556624327), (8.276279442, 4.778312164), (8.276279442, -4.112881982), (15.976279442, -8.558479055), (15.976279442, -18.115103382), (7.7, -22.893415545), (0, -18.447818473), (-7.7, -22.893415545), (-15.976279442, -18.115103382), (-15.976279442, -9.223909236), (-23.676279442, -4.778312164), (-23.676279442, 4.778312164), align=None, mode=Mode.SUBTRACT)
    extrude(amount=-CUT_EXTRUDE3_DEPTH, mode=Mode.SUBTRACT)


solid = part.part
